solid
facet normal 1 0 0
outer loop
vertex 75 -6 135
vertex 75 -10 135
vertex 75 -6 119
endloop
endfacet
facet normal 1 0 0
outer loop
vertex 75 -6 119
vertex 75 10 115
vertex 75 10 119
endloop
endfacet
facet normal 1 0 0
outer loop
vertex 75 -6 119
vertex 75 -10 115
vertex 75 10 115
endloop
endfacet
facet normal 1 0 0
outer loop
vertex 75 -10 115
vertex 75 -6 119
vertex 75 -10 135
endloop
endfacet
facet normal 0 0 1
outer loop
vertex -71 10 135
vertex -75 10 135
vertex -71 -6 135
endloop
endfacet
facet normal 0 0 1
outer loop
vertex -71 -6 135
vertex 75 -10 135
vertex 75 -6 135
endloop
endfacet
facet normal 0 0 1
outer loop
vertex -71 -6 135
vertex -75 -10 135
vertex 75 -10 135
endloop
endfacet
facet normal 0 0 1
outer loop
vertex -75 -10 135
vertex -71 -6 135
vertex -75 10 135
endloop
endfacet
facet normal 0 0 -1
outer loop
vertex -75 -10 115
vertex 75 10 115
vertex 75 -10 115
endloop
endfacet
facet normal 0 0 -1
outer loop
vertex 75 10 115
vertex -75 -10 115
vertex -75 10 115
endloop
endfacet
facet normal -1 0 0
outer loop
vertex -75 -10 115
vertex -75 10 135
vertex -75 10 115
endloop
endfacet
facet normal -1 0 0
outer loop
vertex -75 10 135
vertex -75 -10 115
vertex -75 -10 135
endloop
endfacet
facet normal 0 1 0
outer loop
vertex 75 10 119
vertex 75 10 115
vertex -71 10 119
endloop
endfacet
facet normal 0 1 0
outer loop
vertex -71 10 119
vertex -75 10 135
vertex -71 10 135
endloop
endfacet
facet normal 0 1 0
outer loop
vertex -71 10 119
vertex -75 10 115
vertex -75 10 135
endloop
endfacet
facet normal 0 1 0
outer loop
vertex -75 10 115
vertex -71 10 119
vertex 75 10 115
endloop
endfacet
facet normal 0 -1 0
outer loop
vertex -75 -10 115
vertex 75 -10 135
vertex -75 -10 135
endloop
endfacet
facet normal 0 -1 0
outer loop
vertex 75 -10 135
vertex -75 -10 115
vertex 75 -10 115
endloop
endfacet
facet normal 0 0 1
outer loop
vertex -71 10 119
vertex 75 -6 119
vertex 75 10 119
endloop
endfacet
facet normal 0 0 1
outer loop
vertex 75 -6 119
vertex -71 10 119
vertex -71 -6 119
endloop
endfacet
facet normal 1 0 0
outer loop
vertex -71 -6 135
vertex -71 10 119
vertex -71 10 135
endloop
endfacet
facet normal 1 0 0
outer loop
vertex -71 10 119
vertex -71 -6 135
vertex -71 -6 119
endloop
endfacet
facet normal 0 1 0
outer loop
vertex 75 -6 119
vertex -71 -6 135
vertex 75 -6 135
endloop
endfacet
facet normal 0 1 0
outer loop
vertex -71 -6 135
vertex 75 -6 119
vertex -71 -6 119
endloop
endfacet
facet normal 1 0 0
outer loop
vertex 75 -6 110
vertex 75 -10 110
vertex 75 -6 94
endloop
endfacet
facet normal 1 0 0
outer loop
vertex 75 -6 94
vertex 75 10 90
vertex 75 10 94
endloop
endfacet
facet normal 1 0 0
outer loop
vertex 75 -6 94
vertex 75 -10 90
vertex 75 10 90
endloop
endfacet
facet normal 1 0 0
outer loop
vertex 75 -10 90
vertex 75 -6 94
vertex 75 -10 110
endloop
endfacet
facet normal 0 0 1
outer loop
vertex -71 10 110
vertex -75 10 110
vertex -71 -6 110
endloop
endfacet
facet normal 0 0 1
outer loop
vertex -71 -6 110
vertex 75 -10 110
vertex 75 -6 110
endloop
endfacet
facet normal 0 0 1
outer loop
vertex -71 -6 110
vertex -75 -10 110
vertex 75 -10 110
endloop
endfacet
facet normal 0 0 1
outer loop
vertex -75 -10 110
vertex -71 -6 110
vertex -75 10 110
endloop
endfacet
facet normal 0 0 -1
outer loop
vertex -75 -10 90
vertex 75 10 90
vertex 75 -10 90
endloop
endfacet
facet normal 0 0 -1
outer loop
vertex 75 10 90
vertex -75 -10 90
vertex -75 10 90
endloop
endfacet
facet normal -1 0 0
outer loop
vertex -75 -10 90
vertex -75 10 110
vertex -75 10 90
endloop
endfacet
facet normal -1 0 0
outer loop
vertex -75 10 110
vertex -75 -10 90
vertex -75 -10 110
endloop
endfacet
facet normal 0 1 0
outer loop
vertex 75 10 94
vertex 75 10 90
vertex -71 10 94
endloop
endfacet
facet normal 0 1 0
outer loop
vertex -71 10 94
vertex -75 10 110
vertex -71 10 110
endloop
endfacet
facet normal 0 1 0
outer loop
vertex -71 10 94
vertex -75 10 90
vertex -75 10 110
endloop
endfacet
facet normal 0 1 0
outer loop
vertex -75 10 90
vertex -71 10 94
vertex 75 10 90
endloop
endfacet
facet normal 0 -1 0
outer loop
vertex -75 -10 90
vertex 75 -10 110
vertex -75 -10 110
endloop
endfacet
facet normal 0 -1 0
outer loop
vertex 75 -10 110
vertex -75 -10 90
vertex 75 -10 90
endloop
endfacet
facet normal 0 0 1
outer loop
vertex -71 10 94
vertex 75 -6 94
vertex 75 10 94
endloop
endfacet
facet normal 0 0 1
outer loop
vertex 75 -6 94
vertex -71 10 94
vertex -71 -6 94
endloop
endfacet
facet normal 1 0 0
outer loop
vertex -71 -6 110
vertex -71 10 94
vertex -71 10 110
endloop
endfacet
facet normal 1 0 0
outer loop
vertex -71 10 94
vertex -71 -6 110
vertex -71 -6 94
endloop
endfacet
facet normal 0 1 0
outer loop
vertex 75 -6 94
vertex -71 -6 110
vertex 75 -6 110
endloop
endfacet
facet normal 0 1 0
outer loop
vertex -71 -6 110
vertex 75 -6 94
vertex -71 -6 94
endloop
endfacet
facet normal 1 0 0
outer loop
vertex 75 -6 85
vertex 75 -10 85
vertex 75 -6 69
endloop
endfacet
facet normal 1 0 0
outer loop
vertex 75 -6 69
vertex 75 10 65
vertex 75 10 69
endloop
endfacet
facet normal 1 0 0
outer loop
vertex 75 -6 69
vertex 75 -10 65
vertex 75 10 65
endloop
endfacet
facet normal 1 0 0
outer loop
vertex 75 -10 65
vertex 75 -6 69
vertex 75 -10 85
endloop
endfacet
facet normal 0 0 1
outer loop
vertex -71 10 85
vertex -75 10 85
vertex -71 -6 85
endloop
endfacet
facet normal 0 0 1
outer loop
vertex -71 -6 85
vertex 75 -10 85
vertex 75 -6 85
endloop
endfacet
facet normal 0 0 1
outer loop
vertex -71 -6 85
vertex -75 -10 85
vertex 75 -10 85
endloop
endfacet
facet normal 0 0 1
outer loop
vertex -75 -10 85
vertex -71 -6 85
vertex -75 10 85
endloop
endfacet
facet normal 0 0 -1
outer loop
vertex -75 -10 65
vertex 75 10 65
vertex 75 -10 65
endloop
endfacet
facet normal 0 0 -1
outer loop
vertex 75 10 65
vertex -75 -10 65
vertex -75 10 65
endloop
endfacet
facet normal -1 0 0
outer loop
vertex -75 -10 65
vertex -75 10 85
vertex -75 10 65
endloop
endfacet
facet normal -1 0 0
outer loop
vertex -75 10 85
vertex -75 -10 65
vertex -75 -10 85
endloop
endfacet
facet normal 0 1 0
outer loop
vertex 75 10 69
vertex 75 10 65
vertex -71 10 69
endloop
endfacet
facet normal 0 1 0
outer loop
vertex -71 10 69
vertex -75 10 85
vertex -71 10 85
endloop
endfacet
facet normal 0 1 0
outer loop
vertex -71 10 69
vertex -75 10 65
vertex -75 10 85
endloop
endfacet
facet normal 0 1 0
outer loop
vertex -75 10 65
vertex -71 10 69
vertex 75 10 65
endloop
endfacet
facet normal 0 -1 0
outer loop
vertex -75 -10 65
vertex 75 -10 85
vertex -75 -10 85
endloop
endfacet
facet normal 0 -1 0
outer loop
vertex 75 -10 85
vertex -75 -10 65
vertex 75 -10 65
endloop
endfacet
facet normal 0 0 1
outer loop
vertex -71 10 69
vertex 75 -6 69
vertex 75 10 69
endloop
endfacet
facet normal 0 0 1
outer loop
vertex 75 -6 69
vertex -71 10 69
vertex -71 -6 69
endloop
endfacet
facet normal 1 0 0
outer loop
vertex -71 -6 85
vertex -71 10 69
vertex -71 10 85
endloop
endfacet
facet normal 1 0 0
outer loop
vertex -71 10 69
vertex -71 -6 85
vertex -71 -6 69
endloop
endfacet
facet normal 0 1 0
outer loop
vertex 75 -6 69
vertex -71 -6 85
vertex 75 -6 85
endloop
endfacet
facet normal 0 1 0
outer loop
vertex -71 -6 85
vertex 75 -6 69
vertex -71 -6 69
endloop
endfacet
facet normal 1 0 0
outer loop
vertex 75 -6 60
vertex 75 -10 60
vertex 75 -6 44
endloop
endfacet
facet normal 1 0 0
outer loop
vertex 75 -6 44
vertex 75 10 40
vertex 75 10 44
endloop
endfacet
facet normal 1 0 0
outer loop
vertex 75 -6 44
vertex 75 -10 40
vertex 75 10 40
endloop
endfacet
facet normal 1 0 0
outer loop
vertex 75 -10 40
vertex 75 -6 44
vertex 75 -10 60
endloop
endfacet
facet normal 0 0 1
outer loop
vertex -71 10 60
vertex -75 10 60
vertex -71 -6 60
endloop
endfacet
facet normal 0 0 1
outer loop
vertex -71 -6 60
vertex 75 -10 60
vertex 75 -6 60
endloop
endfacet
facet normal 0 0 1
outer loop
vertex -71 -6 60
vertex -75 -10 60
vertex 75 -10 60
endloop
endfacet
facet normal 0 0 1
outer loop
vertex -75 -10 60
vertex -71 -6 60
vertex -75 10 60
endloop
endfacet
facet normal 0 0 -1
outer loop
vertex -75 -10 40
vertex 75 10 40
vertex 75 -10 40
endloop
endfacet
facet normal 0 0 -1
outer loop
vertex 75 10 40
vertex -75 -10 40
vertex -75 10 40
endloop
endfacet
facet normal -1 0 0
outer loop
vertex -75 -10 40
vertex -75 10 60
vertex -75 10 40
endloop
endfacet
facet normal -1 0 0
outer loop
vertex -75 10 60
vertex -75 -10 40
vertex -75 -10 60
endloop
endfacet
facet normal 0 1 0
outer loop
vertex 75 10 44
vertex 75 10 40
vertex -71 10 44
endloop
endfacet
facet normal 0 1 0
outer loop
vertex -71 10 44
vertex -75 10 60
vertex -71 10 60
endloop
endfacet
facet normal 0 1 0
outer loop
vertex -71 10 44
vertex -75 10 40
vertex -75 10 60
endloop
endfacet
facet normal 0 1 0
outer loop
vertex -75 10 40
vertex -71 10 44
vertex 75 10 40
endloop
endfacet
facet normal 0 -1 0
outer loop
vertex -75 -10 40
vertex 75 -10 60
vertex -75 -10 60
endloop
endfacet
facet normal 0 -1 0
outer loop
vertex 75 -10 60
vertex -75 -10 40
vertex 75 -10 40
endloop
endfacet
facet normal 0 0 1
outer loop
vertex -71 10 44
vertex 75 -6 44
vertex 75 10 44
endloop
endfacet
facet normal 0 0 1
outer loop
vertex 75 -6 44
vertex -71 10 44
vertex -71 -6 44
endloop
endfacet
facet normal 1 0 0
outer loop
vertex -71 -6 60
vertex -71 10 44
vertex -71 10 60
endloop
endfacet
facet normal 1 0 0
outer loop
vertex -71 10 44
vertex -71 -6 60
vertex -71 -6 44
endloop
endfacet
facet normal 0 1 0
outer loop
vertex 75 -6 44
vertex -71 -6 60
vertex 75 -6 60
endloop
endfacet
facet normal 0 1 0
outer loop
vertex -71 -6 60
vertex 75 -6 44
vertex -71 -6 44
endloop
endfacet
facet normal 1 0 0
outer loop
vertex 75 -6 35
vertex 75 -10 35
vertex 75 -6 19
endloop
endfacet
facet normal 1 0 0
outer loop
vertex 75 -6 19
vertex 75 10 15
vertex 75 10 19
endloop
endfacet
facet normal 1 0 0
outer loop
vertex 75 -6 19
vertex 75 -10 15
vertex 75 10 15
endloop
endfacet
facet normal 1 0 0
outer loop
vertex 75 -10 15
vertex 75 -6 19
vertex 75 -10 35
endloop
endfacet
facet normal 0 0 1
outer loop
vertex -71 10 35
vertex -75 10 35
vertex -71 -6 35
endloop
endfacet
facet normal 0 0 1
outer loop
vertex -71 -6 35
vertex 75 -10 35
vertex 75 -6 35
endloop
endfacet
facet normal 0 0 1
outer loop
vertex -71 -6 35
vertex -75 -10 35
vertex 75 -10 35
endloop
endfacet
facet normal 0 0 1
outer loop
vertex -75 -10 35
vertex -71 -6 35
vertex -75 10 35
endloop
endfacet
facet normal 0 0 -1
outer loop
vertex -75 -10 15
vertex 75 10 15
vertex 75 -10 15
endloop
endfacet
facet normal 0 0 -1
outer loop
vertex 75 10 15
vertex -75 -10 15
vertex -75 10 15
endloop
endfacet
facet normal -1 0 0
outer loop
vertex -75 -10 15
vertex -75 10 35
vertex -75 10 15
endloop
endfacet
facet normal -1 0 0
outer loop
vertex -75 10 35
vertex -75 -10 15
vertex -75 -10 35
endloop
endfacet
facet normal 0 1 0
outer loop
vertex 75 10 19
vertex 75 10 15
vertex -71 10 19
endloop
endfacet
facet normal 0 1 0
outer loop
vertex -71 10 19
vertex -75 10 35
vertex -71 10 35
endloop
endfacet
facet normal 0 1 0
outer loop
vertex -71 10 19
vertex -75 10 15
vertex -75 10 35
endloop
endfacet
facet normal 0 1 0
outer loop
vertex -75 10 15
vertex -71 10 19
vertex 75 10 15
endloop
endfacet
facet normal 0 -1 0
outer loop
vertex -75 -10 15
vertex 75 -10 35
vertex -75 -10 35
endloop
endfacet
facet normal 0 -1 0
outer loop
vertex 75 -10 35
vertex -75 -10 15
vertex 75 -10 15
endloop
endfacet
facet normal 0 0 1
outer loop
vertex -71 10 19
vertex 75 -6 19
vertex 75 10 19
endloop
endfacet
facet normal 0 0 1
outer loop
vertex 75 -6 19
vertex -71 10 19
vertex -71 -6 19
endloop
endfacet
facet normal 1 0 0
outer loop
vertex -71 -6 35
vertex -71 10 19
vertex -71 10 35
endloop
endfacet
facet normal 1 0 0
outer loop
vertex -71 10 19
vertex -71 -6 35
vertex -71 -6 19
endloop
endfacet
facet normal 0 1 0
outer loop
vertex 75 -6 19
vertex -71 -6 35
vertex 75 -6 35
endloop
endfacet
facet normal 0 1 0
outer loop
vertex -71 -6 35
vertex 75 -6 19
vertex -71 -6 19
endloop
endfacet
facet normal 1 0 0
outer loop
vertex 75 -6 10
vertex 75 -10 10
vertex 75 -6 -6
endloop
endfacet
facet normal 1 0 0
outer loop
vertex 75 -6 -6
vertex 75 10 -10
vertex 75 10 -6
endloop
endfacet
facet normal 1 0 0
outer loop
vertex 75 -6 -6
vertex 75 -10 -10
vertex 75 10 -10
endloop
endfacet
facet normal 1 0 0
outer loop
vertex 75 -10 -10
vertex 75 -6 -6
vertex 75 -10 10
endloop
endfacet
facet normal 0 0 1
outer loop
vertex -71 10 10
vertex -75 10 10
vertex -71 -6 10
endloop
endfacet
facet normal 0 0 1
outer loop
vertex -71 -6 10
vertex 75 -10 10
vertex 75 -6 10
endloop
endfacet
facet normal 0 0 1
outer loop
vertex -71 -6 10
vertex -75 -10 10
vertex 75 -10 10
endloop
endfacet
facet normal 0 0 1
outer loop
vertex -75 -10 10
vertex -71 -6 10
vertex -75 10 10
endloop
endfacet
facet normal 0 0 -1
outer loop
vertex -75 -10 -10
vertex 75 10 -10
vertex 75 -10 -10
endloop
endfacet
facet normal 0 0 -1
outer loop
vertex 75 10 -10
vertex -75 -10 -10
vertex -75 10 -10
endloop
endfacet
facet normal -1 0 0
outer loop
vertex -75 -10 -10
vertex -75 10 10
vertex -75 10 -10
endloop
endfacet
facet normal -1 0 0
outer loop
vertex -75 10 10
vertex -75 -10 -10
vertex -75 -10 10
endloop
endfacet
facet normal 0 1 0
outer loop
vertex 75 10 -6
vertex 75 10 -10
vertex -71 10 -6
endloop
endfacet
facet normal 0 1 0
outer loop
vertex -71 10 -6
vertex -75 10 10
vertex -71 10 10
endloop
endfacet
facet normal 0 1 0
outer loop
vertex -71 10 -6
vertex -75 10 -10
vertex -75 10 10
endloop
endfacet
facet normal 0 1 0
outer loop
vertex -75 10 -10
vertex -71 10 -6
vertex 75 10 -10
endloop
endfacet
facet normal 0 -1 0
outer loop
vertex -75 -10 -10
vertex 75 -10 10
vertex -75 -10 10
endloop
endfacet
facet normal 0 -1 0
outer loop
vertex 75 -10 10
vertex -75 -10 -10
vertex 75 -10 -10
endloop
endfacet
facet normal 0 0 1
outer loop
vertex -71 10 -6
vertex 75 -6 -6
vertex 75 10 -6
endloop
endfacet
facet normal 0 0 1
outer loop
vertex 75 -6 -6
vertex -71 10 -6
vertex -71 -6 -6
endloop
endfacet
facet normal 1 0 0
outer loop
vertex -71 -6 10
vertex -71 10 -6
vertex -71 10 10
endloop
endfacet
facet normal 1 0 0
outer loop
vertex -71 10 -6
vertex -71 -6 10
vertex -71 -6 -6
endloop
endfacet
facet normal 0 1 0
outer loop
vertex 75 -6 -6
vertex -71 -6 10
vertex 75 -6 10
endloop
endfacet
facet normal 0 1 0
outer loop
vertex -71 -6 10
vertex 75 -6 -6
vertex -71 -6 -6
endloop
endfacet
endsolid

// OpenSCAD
// Function to create a rectangular hollow bar
module rectangular_hollow_bar(length, width, height, wall_thickness) {
    difference() {
        // Outer rectangular prism
        cube([length, width, height], center = true);
        // Inner hollow section
        translate([wall_thickness, wall_thickness, wall_thickness])
            cube([length - 2 * wall_thickness, width - 2 * wall_thickness, height - 2 * wall_thickness], center = true);
    }
}

// Parameters for the rectangular hollow bar
length = 150; // Adjusted length to match the original model
width = 20;   // Width of the bar
height = 20;  // Height of the bar
wall_thickness = 2; // Adjusted wall thickness to make the hollow interior wider

// Positional offsets for stacking the bars
offset_z = 25; // Vertical offset between layers
offset_y = 0;  // Horizontal offset to ensure uniform spacing

// Layer 1
translate([0, offset_y, 5 * offset_z])
    rectangular_hollow_bar(length, width, height, wall_thickness);

// Layer 2
translate([0, offset_y, 4 * offset_z])
    rectangular_hollow_bar(length, width, height, wall_thickness);

// Layer 3
translate([0, offset_y, 3 * offset_z])
    rectangular_hollow_bar(length, width, height, wall_thickness);

// Layer 4
translate([0, offset_y, 2 * offset_z])
    rectangular_hollow_bar(length, width, height, wall_thickness);

// Layer 5
translate([0, offset_y, 1 * offset_z])
    rectangular_hollow_bar(length, width, height, wall_thickness);

// Layer 6
translate([0, offset_y, 0 * offset_z])
    rectangular_hollow_bar(length, width, height, wall_thickness);
